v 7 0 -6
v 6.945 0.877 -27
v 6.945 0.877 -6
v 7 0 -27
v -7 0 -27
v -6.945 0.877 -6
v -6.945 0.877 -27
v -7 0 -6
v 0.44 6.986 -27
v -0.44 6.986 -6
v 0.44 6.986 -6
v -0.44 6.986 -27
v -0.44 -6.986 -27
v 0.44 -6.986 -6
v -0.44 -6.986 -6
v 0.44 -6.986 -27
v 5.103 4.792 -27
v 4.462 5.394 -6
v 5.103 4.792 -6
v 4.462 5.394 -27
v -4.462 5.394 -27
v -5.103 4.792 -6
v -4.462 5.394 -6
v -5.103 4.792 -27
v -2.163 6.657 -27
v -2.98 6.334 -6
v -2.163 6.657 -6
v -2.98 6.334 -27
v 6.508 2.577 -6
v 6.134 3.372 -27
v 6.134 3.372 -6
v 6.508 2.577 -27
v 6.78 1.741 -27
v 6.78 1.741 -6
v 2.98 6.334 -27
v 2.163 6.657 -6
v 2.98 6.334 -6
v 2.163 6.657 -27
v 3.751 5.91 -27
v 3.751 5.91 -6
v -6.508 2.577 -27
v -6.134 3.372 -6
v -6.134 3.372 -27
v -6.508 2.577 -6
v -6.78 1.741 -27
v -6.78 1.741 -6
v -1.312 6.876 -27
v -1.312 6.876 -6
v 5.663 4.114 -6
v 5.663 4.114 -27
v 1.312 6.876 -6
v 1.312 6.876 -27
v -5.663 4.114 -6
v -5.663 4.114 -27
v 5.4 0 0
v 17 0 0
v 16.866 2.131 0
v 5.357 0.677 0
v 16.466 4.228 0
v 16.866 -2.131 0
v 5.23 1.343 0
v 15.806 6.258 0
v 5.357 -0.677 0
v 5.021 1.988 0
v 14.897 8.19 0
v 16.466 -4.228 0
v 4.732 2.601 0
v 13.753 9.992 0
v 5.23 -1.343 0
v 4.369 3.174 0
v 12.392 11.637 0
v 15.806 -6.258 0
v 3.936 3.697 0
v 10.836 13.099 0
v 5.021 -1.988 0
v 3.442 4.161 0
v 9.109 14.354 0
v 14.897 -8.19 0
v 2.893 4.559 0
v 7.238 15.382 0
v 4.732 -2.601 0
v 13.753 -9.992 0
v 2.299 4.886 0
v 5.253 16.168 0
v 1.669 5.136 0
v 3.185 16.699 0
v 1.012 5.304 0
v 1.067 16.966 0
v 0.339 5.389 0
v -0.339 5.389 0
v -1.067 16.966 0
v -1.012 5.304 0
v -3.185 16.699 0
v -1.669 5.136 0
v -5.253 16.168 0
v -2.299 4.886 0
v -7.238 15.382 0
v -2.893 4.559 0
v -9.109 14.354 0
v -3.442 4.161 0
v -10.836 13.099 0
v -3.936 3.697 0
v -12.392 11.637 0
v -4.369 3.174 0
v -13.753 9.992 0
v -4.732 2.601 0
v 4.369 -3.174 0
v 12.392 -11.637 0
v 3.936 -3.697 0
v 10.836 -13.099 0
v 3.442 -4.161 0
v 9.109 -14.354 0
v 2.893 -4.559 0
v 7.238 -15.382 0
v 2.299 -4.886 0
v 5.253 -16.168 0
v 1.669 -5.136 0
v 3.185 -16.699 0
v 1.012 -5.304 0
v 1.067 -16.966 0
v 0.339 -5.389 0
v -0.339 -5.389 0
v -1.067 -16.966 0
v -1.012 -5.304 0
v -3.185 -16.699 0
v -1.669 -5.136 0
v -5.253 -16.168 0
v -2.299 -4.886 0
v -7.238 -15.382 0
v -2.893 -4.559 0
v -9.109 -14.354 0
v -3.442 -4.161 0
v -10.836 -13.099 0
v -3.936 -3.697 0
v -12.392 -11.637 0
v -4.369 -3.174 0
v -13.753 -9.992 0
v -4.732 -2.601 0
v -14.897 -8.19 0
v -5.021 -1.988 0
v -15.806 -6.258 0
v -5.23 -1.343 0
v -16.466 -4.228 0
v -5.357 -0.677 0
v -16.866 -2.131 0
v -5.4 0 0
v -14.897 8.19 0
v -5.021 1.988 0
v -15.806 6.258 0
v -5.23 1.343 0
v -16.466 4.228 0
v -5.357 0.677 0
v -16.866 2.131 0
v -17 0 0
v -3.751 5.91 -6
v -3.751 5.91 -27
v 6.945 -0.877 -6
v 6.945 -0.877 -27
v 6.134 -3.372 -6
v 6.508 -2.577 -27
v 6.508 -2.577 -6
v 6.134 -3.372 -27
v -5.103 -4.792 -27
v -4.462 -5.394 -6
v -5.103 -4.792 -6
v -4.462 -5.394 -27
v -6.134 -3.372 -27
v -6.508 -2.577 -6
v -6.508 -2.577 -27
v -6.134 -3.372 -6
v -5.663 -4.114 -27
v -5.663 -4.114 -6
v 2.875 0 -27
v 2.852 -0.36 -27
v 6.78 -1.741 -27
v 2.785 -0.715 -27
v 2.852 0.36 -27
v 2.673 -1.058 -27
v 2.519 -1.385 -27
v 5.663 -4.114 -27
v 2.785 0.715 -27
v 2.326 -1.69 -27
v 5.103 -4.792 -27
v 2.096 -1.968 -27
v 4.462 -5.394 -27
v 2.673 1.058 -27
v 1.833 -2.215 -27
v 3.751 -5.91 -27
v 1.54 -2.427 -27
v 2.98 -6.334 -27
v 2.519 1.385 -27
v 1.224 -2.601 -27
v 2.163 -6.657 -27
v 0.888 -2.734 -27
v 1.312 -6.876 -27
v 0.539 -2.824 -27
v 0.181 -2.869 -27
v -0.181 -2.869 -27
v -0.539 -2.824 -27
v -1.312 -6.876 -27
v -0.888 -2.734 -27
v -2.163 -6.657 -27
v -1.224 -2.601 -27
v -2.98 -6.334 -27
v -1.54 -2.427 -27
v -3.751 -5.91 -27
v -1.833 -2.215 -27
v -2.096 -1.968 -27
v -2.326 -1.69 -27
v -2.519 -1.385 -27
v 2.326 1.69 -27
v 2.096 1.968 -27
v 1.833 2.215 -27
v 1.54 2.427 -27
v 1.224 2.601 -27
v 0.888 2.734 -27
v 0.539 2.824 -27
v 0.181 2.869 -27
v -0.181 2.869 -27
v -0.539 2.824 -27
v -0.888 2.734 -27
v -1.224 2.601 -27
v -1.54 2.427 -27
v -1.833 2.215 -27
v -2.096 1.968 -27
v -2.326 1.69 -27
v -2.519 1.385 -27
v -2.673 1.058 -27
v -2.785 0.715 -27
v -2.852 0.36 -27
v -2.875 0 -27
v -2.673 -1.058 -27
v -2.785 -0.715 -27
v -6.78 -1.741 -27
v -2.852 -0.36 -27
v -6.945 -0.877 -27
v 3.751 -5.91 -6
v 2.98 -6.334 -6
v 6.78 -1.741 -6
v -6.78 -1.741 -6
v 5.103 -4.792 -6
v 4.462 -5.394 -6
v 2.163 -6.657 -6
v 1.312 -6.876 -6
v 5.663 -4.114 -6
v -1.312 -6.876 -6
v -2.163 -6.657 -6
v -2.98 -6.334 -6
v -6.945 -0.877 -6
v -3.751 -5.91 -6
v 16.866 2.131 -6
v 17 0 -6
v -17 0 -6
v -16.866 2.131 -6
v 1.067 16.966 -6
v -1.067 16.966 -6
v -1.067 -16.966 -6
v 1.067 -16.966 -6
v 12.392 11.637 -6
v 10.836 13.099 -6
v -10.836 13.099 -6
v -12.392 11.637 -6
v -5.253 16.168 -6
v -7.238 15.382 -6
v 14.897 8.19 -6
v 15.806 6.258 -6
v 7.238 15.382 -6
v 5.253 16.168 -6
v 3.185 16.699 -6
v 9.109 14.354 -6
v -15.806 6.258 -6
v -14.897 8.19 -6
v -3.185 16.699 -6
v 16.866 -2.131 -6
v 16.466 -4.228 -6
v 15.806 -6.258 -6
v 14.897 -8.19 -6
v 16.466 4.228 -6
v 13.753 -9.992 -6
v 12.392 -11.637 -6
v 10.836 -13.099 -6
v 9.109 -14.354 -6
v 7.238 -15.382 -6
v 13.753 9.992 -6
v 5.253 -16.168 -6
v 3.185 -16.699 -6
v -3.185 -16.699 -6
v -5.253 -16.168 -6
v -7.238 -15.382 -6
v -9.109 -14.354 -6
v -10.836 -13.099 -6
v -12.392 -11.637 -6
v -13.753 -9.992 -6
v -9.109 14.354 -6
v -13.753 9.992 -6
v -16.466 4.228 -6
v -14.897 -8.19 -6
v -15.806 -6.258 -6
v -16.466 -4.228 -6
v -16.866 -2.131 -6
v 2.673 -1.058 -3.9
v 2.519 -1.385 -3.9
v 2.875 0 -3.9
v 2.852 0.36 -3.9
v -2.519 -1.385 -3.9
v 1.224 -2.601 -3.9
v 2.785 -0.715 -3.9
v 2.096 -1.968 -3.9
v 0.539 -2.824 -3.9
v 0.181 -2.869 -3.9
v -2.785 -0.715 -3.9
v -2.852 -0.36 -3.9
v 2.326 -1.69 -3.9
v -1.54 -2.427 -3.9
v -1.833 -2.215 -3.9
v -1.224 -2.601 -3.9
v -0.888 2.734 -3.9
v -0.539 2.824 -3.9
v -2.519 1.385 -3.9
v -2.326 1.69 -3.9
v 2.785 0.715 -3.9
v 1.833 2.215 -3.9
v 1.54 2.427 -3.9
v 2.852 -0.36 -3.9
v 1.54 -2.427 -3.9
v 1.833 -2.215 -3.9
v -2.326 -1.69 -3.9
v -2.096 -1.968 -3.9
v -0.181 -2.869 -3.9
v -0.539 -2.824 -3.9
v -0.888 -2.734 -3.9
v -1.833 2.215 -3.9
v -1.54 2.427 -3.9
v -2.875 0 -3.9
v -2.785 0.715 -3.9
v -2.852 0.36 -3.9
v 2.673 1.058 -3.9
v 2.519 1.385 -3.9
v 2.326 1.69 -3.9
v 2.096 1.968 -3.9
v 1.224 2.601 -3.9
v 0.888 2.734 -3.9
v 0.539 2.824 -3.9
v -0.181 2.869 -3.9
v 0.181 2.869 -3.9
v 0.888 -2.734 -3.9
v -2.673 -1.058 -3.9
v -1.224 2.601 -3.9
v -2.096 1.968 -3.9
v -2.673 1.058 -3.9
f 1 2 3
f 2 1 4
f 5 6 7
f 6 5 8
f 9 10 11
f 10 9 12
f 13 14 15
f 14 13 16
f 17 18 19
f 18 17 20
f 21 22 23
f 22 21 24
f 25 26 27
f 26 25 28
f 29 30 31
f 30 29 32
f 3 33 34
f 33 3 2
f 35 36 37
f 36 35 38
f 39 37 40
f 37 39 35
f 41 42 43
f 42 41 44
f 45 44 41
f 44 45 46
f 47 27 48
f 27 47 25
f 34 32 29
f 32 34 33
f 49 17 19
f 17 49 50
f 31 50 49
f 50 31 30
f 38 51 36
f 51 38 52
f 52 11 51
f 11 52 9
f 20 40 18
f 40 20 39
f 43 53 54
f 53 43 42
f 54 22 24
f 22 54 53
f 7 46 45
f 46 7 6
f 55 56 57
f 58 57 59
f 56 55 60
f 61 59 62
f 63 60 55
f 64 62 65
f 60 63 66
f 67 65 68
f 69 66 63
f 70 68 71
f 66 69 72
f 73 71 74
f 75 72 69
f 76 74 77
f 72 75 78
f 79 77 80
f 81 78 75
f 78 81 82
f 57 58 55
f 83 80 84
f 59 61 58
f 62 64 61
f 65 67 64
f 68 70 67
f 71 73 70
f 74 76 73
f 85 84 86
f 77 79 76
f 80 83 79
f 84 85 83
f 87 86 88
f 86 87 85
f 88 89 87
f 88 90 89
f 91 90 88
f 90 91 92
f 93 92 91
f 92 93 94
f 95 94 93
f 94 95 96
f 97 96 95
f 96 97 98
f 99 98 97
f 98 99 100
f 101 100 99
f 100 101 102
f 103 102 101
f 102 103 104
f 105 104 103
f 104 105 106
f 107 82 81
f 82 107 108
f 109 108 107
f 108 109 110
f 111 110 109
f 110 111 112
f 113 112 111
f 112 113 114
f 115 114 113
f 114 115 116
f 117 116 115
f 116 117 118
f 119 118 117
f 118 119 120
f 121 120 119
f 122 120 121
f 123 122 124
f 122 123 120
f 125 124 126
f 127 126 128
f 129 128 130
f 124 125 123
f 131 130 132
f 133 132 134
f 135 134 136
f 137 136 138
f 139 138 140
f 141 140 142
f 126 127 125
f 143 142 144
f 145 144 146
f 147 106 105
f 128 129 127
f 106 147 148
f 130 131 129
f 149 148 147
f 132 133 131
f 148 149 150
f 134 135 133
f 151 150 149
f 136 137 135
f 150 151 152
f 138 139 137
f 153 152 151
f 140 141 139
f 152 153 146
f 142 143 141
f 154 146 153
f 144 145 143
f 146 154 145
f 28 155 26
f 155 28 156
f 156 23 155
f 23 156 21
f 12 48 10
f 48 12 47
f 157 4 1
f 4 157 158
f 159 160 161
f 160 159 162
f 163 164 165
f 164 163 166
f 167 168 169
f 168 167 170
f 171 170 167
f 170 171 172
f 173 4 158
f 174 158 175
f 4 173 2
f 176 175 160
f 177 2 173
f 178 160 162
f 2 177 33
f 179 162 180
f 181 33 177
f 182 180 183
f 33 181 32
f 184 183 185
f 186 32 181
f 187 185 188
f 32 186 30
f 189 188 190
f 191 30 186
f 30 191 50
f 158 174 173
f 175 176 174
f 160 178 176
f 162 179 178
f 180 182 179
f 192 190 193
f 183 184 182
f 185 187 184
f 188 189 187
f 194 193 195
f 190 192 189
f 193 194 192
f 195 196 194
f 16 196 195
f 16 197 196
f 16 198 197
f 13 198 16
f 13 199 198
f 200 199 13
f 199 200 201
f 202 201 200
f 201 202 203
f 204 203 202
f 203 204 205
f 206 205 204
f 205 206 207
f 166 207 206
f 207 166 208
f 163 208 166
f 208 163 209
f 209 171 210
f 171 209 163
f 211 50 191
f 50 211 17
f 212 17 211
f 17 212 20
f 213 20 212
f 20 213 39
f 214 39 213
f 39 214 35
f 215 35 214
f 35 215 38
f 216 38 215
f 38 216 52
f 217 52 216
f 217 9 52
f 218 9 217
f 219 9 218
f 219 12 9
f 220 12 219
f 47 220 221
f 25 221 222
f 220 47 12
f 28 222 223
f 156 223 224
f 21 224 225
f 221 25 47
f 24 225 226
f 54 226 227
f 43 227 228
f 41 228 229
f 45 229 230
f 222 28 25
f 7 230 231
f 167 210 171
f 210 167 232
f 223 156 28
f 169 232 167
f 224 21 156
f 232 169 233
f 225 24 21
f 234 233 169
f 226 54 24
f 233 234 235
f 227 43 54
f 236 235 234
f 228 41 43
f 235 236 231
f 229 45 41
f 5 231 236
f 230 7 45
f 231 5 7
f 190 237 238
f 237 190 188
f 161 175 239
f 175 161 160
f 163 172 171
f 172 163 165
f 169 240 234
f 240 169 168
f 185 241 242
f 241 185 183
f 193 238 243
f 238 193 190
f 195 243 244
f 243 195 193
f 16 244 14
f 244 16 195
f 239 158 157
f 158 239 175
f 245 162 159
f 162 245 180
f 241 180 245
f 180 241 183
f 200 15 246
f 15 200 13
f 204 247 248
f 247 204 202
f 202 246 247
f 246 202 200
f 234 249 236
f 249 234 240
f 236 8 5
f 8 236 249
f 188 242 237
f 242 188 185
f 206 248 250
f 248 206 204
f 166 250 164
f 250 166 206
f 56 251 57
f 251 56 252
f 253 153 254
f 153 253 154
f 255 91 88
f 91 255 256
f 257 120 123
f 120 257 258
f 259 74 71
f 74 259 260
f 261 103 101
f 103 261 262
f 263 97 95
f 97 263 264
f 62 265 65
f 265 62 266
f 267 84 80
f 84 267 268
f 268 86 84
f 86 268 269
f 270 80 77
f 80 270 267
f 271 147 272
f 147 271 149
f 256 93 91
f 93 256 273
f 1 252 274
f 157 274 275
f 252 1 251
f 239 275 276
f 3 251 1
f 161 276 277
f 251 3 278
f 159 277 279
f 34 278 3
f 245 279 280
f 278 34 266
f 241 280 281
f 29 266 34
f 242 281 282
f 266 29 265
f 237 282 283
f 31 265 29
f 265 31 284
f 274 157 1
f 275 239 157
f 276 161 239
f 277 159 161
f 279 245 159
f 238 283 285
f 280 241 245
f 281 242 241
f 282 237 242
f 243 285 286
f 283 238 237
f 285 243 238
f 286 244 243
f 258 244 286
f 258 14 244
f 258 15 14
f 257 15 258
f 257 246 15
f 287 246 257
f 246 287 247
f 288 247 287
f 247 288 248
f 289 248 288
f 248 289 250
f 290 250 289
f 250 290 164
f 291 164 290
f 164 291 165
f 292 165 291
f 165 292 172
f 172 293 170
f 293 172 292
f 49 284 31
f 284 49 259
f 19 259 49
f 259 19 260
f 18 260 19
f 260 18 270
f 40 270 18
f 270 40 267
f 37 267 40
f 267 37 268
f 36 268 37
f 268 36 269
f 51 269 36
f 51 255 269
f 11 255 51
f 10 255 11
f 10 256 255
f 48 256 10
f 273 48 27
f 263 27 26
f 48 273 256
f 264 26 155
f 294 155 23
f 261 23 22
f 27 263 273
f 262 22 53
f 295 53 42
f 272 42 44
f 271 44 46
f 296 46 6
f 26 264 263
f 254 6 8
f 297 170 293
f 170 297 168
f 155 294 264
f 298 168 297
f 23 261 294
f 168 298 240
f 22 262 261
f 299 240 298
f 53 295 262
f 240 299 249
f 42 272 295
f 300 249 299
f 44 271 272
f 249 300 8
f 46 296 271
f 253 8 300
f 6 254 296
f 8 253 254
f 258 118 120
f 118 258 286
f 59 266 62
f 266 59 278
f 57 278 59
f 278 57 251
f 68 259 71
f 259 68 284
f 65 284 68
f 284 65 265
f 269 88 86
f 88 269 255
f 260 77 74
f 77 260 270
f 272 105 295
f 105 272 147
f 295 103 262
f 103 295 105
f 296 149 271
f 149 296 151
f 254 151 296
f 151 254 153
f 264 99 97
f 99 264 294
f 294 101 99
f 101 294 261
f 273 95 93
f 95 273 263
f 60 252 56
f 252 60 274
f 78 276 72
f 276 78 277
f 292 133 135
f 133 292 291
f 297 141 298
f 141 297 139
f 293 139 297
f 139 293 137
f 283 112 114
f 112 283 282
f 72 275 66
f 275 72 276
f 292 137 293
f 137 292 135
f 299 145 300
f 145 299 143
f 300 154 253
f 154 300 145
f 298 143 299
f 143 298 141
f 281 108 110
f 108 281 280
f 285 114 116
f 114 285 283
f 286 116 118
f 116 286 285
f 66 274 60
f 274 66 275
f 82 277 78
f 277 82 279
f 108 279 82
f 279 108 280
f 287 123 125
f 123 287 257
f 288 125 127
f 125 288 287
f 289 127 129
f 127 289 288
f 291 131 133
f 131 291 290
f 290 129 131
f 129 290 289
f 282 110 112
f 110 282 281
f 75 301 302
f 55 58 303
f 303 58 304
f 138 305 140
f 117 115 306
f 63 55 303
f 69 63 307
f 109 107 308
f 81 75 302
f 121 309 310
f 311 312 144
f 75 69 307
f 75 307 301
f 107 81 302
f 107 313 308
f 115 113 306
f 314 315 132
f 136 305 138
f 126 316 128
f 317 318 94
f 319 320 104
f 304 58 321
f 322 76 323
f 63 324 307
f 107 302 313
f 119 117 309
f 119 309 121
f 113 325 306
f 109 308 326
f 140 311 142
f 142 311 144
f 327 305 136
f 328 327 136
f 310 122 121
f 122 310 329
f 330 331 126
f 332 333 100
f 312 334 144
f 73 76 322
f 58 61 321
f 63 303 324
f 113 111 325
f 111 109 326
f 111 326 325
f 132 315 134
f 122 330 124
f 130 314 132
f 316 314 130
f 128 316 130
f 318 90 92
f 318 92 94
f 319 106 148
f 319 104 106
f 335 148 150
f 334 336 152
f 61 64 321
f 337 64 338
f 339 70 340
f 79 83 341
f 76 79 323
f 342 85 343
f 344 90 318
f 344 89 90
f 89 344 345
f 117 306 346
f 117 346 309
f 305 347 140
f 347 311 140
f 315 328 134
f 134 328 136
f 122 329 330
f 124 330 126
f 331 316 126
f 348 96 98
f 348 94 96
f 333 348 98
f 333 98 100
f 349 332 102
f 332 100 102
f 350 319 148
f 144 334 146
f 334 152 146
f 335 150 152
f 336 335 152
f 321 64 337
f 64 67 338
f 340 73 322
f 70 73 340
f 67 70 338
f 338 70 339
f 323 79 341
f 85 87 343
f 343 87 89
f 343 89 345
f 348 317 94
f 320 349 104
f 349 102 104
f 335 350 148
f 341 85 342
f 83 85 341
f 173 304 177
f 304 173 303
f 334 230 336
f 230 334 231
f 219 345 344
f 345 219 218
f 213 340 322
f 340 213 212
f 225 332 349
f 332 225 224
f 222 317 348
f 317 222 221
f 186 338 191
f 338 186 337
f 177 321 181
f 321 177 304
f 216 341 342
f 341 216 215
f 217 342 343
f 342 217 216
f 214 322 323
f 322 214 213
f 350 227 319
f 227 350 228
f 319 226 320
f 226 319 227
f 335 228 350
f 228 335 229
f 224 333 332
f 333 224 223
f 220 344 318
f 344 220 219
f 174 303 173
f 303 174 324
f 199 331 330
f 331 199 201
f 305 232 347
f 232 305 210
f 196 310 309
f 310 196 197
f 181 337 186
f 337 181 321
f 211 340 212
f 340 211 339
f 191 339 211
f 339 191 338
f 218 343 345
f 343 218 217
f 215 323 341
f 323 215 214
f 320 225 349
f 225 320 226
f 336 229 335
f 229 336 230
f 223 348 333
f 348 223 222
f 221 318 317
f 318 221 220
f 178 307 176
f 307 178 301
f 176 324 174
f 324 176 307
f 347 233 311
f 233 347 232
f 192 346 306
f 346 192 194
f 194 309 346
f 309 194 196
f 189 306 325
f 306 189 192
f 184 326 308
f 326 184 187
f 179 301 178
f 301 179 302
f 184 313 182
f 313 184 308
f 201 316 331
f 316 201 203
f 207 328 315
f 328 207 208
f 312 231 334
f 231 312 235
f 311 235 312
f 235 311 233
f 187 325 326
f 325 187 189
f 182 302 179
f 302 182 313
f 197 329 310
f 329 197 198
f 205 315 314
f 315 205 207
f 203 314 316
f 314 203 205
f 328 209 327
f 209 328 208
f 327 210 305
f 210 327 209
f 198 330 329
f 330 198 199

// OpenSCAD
$fn = 50;


difference() {
	union() {
		translate(v = [0, 0, -27.0000000000]) {
			cylinder(h = 27, r = 7.0000000000);
		}
		translate(v = [0, 0, -6.0000000000]) {
			cylinder(h = 6, r = 17.0000000000);
		}
	}
	union() {
		translate(v = [0, 0, 0]) {
			rotate(a = [0, 0, 0]) {
				difference() {
					union() {
						#translate(v = [0, 0, -27.0000000000]) {
							cylinder(h = 27, r = 2.6000000000);
						}
						#translate(v = [0, 0, -3.9000000000]) {
							cylinder(h = 3.9000000000, r1 = 2.8750000000, r2 = 5.4000000000);
						}
						#translate(v = [0, 0, -27.0000000000]) {
							cylinder(h = 27, r = 2.8750000000);
						}
						#translate(v = [0, 0, -27.0000000000]) {
							cylinder(h = 27, r = 2.6000000000);
						}
					}
					union();
				}
			}
		}
	}
}
